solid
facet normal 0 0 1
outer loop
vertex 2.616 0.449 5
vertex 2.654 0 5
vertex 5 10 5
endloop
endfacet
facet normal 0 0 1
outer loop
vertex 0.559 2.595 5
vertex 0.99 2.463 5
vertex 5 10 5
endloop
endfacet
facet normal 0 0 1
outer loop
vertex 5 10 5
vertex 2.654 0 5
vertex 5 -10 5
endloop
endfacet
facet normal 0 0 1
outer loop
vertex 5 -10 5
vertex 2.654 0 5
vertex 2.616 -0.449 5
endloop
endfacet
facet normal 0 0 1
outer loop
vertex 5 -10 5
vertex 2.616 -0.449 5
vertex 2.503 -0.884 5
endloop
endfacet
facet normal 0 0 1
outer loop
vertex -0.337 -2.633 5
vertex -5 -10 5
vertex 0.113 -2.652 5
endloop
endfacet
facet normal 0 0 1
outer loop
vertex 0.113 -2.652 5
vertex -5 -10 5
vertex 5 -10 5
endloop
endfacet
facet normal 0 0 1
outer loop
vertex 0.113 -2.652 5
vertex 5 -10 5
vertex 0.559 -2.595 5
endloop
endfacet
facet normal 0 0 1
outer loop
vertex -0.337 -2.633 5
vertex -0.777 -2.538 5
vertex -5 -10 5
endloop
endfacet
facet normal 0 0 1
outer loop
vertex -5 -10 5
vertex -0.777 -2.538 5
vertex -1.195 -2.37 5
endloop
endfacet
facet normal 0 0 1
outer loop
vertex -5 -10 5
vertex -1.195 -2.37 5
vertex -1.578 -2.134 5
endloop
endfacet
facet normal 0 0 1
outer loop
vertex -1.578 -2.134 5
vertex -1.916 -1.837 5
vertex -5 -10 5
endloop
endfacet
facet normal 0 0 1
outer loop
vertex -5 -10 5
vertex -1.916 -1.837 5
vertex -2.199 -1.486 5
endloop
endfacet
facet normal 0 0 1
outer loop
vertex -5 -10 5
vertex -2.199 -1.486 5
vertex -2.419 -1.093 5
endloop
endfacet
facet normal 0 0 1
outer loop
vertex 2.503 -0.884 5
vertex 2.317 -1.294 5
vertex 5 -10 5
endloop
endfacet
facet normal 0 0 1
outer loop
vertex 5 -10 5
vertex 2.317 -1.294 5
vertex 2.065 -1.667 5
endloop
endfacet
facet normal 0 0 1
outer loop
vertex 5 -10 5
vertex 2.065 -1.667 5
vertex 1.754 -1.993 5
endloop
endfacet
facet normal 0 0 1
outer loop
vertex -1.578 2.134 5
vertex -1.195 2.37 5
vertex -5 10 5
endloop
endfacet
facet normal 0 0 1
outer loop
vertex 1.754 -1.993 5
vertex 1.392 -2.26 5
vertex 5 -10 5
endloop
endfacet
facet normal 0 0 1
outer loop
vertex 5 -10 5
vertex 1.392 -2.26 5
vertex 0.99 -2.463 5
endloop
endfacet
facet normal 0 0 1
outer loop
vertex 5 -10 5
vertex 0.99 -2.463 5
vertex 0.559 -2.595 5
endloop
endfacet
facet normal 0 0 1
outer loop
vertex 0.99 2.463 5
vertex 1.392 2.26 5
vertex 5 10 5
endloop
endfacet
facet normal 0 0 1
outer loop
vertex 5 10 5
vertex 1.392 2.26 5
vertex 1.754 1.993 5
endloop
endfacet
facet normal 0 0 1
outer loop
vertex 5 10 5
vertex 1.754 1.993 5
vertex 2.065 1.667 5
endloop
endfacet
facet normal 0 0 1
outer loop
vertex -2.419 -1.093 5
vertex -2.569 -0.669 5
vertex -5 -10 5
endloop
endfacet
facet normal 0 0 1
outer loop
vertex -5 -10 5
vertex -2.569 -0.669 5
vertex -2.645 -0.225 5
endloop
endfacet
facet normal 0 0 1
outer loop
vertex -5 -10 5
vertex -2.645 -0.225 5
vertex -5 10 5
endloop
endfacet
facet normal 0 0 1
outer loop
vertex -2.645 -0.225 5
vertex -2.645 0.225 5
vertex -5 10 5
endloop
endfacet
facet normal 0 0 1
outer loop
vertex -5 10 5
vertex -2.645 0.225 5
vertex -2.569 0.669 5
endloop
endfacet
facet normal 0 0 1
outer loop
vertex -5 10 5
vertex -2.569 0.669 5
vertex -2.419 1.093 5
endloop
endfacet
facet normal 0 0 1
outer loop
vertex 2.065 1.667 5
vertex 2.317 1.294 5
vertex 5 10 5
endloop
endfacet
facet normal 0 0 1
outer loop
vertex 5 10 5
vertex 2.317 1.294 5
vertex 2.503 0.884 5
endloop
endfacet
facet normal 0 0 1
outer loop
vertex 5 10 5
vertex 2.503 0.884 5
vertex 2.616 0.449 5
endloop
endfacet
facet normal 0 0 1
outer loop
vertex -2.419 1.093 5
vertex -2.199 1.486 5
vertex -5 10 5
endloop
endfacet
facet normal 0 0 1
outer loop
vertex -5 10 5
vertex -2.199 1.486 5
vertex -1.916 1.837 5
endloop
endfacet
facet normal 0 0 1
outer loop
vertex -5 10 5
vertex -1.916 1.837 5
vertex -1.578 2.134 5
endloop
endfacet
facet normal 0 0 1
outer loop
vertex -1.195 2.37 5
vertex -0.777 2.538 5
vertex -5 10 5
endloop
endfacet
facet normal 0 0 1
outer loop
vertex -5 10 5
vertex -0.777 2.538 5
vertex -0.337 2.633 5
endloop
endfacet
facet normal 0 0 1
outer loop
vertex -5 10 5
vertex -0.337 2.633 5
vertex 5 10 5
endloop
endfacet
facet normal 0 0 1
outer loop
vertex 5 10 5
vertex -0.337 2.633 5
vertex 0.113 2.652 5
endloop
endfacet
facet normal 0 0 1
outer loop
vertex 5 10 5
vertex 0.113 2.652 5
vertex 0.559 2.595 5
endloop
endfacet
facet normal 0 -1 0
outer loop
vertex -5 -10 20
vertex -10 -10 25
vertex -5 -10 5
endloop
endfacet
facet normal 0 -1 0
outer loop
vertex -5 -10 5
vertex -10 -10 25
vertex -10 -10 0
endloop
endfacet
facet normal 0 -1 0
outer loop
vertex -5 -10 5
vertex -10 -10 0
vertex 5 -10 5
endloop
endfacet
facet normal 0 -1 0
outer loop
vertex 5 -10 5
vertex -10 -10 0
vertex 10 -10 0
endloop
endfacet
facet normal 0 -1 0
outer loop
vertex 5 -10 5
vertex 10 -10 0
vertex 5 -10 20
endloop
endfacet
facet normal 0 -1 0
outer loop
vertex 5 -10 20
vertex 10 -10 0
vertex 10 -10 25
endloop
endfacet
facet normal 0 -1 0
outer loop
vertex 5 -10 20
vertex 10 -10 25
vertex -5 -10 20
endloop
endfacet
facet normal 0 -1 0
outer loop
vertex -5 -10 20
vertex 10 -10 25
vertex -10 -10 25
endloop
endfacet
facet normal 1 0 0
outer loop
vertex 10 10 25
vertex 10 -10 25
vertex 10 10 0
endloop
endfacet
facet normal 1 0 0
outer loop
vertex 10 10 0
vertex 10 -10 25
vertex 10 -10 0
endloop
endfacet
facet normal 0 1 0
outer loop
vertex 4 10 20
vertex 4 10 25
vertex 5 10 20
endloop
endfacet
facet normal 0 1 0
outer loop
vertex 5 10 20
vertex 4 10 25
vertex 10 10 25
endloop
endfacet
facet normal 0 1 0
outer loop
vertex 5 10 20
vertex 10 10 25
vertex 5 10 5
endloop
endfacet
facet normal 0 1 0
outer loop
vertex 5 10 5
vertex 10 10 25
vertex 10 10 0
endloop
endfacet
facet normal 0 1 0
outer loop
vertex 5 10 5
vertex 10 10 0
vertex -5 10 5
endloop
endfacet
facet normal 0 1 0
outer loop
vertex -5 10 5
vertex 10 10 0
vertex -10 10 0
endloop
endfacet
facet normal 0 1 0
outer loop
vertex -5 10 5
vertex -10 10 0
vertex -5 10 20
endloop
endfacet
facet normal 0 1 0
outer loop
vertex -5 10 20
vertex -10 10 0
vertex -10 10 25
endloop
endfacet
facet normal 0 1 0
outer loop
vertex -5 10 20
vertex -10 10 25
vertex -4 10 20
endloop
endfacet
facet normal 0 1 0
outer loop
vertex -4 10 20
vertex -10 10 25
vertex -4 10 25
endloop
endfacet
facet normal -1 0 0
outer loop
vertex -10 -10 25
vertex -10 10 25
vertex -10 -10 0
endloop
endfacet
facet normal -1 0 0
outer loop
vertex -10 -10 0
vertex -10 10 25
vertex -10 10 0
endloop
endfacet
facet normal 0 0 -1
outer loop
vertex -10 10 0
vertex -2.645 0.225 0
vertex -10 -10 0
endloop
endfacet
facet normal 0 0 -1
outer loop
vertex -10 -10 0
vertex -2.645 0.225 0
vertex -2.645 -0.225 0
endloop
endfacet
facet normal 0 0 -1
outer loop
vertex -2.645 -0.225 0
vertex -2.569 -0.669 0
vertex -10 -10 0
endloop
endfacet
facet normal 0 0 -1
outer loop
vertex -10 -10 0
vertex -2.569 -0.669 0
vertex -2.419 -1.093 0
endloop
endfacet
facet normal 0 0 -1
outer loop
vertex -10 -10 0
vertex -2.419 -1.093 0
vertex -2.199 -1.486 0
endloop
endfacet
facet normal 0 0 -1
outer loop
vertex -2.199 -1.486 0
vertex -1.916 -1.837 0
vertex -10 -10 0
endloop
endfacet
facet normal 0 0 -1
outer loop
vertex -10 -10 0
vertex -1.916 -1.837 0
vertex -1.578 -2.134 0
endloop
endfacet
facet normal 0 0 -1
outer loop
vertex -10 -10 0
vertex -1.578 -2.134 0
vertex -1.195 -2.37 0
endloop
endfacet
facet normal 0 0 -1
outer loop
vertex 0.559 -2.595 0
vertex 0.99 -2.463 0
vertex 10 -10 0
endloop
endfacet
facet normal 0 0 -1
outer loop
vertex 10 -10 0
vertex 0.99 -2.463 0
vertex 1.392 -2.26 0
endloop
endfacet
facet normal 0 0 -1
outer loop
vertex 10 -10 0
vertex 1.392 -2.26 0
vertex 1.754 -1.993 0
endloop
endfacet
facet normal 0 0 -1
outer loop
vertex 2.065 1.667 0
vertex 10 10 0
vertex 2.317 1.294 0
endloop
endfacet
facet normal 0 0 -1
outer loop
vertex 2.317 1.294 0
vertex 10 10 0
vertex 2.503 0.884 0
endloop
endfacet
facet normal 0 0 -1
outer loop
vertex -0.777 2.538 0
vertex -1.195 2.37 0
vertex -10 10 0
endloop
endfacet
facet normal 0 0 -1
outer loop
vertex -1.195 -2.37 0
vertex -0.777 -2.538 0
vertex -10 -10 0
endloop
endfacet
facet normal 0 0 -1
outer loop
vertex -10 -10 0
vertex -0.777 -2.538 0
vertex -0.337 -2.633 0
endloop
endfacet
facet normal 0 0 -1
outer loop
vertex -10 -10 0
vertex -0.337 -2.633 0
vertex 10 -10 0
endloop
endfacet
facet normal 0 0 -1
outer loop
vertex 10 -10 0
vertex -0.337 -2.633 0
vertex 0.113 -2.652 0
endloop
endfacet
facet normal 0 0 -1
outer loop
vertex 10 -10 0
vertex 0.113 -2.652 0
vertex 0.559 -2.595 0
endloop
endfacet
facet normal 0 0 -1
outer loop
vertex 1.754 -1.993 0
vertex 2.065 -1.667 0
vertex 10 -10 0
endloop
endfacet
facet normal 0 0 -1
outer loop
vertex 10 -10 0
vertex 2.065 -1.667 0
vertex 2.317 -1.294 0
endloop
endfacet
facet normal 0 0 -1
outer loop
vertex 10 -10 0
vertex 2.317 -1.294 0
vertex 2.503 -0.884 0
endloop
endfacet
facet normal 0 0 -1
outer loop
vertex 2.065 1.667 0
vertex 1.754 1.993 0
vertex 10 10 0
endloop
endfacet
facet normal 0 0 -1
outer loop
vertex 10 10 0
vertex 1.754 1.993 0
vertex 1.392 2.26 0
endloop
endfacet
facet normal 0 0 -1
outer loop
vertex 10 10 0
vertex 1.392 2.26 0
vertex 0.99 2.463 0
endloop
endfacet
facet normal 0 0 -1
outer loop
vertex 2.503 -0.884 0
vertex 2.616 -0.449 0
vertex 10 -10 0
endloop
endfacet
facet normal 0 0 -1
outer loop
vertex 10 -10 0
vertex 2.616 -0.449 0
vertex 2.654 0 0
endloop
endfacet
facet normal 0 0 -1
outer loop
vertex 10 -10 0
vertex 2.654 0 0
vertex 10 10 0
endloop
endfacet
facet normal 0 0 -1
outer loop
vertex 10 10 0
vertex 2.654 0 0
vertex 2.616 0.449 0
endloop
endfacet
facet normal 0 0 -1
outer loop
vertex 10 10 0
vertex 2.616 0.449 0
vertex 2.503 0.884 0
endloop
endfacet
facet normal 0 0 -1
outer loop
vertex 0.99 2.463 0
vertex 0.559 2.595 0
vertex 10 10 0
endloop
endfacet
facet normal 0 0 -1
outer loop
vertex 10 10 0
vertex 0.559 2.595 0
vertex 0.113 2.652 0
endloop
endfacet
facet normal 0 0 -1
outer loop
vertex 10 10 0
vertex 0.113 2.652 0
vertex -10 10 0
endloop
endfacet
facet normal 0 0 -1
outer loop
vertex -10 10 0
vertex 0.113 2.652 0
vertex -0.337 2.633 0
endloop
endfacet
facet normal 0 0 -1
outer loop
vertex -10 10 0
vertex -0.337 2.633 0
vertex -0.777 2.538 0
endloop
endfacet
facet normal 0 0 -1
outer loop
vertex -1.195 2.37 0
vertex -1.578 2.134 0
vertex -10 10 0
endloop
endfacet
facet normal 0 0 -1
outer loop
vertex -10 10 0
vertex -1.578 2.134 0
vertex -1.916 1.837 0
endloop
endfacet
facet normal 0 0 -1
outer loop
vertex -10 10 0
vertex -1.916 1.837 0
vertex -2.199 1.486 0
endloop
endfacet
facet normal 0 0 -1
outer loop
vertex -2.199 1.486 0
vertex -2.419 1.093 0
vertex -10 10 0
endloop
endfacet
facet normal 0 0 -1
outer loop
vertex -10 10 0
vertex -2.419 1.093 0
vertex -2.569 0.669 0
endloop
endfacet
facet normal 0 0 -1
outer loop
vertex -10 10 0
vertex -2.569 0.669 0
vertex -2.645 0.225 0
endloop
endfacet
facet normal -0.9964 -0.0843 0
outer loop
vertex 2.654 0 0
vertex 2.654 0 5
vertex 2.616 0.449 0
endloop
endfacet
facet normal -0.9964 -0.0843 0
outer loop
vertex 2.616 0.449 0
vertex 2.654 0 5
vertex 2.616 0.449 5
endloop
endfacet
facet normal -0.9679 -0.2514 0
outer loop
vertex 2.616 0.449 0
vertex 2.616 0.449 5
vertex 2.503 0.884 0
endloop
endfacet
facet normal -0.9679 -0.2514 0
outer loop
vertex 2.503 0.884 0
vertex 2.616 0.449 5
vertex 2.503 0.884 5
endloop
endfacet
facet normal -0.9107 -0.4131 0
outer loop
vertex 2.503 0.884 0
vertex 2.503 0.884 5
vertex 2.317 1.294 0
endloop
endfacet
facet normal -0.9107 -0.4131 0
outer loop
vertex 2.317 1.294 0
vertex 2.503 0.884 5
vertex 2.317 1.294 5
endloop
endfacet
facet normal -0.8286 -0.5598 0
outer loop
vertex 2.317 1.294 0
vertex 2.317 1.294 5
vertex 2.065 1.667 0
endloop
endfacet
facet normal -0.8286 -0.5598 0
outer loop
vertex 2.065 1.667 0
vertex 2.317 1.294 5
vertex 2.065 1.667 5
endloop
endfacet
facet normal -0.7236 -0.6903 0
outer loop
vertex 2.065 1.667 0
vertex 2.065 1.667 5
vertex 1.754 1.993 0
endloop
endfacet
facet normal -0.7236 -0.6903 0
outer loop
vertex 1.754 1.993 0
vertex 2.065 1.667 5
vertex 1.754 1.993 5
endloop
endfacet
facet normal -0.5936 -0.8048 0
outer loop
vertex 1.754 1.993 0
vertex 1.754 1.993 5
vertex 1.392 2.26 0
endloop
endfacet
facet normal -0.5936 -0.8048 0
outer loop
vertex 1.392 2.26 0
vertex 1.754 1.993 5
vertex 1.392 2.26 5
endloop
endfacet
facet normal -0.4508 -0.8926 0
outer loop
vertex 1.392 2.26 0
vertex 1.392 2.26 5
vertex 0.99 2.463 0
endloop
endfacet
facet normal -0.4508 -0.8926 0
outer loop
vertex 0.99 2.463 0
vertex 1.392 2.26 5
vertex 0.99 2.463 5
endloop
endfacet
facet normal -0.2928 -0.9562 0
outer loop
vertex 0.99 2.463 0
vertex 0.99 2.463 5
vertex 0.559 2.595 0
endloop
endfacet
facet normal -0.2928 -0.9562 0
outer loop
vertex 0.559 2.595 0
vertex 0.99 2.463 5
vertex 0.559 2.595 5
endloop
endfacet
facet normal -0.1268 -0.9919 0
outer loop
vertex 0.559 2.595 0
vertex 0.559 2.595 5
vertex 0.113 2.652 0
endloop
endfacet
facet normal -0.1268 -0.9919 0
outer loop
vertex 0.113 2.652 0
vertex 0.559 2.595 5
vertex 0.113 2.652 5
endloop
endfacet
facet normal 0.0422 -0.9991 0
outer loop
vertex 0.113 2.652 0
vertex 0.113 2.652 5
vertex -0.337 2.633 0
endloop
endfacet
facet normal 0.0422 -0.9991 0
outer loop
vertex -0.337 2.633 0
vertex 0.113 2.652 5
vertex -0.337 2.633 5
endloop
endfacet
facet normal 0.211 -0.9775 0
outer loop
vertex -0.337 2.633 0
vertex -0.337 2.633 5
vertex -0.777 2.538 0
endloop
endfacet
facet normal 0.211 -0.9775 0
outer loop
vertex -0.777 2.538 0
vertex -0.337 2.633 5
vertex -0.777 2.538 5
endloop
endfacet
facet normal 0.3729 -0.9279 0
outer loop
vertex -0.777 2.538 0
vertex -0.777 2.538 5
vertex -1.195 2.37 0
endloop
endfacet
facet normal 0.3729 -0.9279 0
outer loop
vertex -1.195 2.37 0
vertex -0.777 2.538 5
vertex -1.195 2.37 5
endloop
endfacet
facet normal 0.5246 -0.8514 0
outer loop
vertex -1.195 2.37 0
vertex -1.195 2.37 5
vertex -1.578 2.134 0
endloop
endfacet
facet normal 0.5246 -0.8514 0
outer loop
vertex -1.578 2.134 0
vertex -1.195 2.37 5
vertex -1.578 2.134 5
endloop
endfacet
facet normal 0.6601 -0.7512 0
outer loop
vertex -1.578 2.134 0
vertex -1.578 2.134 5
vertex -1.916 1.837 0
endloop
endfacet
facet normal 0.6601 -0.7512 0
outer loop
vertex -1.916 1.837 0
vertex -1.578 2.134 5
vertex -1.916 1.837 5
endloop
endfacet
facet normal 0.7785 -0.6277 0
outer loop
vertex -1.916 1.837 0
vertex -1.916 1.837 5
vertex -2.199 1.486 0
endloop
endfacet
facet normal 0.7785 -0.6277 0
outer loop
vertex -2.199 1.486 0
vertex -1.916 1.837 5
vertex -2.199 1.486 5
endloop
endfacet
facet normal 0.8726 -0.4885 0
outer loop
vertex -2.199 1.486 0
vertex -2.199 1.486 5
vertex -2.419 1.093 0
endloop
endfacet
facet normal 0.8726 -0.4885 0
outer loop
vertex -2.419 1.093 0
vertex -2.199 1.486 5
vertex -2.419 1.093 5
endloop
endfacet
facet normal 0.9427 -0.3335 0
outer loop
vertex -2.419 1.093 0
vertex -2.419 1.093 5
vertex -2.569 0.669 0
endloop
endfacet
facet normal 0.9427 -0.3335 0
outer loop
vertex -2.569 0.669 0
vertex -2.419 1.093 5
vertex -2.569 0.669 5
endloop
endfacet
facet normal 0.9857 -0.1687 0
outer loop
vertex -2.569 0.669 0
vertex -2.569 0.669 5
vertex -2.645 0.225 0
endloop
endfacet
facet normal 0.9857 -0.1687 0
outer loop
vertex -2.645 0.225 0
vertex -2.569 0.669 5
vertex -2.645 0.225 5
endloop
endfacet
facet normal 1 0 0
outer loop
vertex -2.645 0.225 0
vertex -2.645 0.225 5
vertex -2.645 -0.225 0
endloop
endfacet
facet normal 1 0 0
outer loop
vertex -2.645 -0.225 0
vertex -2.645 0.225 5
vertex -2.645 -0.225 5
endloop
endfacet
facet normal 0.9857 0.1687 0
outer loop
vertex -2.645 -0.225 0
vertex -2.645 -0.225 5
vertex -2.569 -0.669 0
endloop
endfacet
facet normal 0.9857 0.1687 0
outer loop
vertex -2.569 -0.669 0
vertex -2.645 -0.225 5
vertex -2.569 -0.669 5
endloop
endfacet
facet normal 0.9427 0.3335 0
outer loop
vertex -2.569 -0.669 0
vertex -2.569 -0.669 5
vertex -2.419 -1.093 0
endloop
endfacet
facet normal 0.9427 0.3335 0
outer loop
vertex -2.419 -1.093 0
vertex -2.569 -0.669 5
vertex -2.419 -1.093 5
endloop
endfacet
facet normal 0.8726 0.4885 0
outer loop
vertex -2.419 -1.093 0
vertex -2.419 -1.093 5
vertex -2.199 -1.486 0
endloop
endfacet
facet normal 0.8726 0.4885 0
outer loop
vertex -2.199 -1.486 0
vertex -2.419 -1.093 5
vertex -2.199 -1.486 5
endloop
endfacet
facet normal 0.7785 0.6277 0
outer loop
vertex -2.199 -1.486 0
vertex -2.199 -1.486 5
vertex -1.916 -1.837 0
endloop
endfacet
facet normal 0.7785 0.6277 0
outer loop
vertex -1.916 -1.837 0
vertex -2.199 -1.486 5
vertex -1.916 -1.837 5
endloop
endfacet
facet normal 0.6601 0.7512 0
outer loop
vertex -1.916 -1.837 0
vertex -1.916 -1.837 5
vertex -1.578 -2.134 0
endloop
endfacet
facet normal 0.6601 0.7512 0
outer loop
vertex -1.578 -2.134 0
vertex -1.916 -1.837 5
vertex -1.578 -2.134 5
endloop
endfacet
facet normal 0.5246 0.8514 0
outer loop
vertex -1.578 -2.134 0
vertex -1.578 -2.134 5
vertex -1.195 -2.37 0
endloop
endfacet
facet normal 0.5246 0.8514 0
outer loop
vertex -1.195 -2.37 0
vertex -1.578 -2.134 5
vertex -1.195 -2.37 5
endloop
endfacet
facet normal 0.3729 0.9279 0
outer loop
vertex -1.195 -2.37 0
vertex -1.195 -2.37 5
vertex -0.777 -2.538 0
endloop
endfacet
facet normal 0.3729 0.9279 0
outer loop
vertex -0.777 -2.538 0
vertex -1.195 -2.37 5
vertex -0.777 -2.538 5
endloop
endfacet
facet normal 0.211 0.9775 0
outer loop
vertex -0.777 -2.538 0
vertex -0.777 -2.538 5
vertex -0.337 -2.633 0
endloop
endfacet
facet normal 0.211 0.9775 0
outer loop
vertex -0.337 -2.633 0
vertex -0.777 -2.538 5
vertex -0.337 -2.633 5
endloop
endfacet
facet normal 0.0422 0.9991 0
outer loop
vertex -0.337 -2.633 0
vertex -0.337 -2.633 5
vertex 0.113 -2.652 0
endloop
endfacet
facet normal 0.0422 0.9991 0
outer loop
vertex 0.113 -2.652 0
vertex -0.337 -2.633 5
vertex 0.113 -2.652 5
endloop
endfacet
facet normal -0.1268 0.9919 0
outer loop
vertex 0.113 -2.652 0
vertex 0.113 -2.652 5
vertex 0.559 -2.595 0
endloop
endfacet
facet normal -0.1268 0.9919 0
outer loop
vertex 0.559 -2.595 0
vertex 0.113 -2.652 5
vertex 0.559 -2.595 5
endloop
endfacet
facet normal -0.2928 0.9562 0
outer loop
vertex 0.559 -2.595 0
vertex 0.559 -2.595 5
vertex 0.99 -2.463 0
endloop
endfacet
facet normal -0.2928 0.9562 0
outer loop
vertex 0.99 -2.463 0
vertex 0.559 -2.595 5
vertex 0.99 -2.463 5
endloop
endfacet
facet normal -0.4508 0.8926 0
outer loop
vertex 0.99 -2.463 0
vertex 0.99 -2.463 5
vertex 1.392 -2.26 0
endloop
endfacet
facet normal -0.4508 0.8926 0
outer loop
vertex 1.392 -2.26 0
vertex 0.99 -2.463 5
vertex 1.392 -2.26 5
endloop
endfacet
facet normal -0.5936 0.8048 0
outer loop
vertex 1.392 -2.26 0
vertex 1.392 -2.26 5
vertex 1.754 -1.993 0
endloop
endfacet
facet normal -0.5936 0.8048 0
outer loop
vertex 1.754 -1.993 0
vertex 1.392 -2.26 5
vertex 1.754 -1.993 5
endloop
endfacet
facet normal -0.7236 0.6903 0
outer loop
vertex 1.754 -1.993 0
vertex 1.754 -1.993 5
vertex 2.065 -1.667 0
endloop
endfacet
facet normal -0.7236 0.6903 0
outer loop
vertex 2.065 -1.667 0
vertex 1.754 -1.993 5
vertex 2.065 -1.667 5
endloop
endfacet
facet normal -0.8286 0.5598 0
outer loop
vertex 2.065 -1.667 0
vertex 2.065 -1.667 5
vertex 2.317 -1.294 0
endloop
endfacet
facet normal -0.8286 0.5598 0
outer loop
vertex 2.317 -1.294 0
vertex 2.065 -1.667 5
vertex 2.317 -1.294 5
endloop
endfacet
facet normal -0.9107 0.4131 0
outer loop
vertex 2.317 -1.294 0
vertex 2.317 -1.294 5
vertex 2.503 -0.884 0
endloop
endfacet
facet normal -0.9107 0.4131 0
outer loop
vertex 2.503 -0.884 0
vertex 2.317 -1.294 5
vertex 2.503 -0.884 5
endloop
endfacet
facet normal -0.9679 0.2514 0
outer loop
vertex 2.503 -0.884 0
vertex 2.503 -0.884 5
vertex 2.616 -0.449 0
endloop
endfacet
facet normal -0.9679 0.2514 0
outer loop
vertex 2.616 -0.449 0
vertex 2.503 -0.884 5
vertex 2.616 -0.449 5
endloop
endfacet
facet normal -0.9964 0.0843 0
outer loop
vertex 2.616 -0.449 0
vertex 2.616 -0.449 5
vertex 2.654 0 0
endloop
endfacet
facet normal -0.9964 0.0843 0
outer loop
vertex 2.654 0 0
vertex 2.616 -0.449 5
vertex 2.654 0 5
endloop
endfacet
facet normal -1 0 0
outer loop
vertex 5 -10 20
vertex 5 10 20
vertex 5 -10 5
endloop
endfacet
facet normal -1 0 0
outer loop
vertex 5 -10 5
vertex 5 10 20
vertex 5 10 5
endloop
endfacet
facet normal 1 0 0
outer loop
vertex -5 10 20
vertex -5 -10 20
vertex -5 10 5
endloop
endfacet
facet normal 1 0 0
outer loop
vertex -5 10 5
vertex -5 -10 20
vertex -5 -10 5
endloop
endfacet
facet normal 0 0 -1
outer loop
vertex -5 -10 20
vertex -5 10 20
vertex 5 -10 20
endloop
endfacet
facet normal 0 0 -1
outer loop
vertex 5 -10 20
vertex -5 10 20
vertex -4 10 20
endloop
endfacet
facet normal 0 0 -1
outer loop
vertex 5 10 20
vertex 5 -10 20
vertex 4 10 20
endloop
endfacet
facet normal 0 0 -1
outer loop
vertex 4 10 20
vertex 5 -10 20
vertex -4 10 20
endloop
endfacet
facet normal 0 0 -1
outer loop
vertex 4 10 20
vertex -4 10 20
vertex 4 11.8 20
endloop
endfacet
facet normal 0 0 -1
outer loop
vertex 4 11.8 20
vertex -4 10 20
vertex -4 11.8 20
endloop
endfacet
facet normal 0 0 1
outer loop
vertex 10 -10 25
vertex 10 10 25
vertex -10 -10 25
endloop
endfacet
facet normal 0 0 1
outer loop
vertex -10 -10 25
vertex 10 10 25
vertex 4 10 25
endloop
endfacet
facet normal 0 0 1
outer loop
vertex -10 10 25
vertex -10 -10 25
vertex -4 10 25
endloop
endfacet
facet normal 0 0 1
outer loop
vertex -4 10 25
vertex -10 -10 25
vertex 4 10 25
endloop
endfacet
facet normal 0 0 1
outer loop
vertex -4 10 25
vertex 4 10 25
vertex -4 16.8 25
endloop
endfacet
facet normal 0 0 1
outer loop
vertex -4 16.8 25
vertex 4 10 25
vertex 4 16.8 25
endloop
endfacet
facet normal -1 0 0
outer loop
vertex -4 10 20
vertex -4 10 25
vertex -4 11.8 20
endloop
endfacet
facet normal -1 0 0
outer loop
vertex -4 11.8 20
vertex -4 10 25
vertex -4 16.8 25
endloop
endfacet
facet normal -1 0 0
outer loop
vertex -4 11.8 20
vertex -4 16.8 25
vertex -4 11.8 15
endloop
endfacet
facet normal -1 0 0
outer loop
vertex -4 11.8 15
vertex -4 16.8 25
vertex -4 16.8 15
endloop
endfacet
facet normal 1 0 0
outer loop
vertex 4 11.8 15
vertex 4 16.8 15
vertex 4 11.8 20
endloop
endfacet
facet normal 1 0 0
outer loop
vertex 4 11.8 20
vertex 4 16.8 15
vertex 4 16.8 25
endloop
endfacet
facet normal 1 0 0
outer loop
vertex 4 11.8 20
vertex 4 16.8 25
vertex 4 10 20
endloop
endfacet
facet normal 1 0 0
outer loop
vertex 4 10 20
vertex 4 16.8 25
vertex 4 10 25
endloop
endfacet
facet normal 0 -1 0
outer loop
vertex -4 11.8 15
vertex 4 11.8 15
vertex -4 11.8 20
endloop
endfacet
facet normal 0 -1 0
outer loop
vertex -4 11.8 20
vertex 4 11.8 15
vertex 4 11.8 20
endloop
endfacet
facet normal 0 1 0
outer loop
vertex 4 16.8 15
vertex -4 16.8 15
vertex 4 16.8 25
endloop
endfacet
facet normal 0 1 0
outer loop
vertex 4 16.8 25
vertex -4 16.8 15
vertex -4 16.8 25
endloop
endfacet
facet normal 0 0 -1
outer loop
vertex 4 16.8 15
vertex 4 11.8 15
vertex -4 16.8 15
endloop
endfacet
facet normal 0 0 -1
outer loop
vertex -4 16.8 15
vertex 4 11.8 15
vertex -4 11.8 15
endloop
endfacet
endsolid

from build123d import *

# Parameters (mm, degrees)
SKETCH1_W                  = 20
SKETCH1_H                  = 20
BOSS_EXTRUDE1_DEPTH        = 5
F_4_0_209_DIAMETER_HOLE1_D = 5.3086
BOSS_EXTRUDE5_START        = 5
SKETCH1_5_W                = 5
SKETCH1_5_H                = 20
BOSS_EXTRUDE5_DEPTH        = 15
BOSS_EXTRUDE6_START        = 20
SKETCH1_6_W                = 5
SKETCH1_6_H                = 20
BOSS_EXTRUDE6_DEPTH        = 5
BOSS_EXTRUDE7_START        = 25
SKETCH1_7_W                = 8
SKETCH1_7_H                = 1.8
BOSS_EXTRUDE7_DEPTH        = 5
BOSS_EXTRUDE8_START        = 25
SKETCH1_8_W                = 8
SKETCH1_8_H                = 5
BOSS_EXTRUDE8_DEPTH        = 10


with BuildPart() as part:
    # Sketch1 → Boss-Extrude1 (new body)
    with BuildSketch(Plane.XY):
        Rectangle(SKETCH1_W, SKETCH1_H)
    extrude(amount=BOSS_EXTRUDE1_DEPTH)

    # #4 (0.209) Diameter Hole1 (through all)
    with Locations(Plane.XY.offset(5)):
        with Locations((0, 0)):
            Hole(F_4_0_209_DIAMETER_HOLE1_D / 2)

    # Sketch1<5> → Boss-Extrude5 (add)
    with BuildSketch(Plane.XY.offset(BOSS_EXTRUDE5_START)):
        with Locations((-7.5, 0)):
            Rectangle(SKETCH1_5_W, SKETCH1_5_H)
        with Locations((7.5, 0)):
            Rectangle(SKETCH1_5_W, SKETCH1_5_H)
    extrude(amount=BOSS_EXTRUDE5_DEPTH)

    # Sketch1<6> → Boss-Extrude6 (add)
    with BuildSketch(Plane.XY.offset(BOSS_EXTRUDE6_START)):
        with Locations((-7.5, 0)):
            Rectangle(SKETCH1_6_W, SKETCH1_6_H)
        Polygon((4, 10), (-4, 10), (-5, 10), (-5, -10), (5, -10), (5, 10), align=None)
        with Locations((7.5, 0)):
            Rectangle(SKETCH1_6_W, SKETCH1_6_H)
    extrude(amount=BOSS_EXTRUDE6_DEPTH)

    # Sketch1<7> → Boss-Extrude7 (add)
    with BuildSketch(Plane.XY.offset(BOSS_EXTRUDE7_START)):
        with Locations((0, 10.9)):
            Rectangle(SKETCH1_7_W, SKETCH1_7_H)
    extrude(amount=-BOSS_EXTRUDE7_DEPTH)

    # Sketch1<8> → Boss-Extrude8 (add)
    with BuildSketch(Plane.XY.offset(BOSS_EXTRUDE8_START)):
        with Locations((0, 14.3)):
            Rectangle(SKETCH1_8_W, SKETCH1_8_H)
    extrude(amount=-BOSS_EXTRUDE8_DEPTH)


solid = part.part
